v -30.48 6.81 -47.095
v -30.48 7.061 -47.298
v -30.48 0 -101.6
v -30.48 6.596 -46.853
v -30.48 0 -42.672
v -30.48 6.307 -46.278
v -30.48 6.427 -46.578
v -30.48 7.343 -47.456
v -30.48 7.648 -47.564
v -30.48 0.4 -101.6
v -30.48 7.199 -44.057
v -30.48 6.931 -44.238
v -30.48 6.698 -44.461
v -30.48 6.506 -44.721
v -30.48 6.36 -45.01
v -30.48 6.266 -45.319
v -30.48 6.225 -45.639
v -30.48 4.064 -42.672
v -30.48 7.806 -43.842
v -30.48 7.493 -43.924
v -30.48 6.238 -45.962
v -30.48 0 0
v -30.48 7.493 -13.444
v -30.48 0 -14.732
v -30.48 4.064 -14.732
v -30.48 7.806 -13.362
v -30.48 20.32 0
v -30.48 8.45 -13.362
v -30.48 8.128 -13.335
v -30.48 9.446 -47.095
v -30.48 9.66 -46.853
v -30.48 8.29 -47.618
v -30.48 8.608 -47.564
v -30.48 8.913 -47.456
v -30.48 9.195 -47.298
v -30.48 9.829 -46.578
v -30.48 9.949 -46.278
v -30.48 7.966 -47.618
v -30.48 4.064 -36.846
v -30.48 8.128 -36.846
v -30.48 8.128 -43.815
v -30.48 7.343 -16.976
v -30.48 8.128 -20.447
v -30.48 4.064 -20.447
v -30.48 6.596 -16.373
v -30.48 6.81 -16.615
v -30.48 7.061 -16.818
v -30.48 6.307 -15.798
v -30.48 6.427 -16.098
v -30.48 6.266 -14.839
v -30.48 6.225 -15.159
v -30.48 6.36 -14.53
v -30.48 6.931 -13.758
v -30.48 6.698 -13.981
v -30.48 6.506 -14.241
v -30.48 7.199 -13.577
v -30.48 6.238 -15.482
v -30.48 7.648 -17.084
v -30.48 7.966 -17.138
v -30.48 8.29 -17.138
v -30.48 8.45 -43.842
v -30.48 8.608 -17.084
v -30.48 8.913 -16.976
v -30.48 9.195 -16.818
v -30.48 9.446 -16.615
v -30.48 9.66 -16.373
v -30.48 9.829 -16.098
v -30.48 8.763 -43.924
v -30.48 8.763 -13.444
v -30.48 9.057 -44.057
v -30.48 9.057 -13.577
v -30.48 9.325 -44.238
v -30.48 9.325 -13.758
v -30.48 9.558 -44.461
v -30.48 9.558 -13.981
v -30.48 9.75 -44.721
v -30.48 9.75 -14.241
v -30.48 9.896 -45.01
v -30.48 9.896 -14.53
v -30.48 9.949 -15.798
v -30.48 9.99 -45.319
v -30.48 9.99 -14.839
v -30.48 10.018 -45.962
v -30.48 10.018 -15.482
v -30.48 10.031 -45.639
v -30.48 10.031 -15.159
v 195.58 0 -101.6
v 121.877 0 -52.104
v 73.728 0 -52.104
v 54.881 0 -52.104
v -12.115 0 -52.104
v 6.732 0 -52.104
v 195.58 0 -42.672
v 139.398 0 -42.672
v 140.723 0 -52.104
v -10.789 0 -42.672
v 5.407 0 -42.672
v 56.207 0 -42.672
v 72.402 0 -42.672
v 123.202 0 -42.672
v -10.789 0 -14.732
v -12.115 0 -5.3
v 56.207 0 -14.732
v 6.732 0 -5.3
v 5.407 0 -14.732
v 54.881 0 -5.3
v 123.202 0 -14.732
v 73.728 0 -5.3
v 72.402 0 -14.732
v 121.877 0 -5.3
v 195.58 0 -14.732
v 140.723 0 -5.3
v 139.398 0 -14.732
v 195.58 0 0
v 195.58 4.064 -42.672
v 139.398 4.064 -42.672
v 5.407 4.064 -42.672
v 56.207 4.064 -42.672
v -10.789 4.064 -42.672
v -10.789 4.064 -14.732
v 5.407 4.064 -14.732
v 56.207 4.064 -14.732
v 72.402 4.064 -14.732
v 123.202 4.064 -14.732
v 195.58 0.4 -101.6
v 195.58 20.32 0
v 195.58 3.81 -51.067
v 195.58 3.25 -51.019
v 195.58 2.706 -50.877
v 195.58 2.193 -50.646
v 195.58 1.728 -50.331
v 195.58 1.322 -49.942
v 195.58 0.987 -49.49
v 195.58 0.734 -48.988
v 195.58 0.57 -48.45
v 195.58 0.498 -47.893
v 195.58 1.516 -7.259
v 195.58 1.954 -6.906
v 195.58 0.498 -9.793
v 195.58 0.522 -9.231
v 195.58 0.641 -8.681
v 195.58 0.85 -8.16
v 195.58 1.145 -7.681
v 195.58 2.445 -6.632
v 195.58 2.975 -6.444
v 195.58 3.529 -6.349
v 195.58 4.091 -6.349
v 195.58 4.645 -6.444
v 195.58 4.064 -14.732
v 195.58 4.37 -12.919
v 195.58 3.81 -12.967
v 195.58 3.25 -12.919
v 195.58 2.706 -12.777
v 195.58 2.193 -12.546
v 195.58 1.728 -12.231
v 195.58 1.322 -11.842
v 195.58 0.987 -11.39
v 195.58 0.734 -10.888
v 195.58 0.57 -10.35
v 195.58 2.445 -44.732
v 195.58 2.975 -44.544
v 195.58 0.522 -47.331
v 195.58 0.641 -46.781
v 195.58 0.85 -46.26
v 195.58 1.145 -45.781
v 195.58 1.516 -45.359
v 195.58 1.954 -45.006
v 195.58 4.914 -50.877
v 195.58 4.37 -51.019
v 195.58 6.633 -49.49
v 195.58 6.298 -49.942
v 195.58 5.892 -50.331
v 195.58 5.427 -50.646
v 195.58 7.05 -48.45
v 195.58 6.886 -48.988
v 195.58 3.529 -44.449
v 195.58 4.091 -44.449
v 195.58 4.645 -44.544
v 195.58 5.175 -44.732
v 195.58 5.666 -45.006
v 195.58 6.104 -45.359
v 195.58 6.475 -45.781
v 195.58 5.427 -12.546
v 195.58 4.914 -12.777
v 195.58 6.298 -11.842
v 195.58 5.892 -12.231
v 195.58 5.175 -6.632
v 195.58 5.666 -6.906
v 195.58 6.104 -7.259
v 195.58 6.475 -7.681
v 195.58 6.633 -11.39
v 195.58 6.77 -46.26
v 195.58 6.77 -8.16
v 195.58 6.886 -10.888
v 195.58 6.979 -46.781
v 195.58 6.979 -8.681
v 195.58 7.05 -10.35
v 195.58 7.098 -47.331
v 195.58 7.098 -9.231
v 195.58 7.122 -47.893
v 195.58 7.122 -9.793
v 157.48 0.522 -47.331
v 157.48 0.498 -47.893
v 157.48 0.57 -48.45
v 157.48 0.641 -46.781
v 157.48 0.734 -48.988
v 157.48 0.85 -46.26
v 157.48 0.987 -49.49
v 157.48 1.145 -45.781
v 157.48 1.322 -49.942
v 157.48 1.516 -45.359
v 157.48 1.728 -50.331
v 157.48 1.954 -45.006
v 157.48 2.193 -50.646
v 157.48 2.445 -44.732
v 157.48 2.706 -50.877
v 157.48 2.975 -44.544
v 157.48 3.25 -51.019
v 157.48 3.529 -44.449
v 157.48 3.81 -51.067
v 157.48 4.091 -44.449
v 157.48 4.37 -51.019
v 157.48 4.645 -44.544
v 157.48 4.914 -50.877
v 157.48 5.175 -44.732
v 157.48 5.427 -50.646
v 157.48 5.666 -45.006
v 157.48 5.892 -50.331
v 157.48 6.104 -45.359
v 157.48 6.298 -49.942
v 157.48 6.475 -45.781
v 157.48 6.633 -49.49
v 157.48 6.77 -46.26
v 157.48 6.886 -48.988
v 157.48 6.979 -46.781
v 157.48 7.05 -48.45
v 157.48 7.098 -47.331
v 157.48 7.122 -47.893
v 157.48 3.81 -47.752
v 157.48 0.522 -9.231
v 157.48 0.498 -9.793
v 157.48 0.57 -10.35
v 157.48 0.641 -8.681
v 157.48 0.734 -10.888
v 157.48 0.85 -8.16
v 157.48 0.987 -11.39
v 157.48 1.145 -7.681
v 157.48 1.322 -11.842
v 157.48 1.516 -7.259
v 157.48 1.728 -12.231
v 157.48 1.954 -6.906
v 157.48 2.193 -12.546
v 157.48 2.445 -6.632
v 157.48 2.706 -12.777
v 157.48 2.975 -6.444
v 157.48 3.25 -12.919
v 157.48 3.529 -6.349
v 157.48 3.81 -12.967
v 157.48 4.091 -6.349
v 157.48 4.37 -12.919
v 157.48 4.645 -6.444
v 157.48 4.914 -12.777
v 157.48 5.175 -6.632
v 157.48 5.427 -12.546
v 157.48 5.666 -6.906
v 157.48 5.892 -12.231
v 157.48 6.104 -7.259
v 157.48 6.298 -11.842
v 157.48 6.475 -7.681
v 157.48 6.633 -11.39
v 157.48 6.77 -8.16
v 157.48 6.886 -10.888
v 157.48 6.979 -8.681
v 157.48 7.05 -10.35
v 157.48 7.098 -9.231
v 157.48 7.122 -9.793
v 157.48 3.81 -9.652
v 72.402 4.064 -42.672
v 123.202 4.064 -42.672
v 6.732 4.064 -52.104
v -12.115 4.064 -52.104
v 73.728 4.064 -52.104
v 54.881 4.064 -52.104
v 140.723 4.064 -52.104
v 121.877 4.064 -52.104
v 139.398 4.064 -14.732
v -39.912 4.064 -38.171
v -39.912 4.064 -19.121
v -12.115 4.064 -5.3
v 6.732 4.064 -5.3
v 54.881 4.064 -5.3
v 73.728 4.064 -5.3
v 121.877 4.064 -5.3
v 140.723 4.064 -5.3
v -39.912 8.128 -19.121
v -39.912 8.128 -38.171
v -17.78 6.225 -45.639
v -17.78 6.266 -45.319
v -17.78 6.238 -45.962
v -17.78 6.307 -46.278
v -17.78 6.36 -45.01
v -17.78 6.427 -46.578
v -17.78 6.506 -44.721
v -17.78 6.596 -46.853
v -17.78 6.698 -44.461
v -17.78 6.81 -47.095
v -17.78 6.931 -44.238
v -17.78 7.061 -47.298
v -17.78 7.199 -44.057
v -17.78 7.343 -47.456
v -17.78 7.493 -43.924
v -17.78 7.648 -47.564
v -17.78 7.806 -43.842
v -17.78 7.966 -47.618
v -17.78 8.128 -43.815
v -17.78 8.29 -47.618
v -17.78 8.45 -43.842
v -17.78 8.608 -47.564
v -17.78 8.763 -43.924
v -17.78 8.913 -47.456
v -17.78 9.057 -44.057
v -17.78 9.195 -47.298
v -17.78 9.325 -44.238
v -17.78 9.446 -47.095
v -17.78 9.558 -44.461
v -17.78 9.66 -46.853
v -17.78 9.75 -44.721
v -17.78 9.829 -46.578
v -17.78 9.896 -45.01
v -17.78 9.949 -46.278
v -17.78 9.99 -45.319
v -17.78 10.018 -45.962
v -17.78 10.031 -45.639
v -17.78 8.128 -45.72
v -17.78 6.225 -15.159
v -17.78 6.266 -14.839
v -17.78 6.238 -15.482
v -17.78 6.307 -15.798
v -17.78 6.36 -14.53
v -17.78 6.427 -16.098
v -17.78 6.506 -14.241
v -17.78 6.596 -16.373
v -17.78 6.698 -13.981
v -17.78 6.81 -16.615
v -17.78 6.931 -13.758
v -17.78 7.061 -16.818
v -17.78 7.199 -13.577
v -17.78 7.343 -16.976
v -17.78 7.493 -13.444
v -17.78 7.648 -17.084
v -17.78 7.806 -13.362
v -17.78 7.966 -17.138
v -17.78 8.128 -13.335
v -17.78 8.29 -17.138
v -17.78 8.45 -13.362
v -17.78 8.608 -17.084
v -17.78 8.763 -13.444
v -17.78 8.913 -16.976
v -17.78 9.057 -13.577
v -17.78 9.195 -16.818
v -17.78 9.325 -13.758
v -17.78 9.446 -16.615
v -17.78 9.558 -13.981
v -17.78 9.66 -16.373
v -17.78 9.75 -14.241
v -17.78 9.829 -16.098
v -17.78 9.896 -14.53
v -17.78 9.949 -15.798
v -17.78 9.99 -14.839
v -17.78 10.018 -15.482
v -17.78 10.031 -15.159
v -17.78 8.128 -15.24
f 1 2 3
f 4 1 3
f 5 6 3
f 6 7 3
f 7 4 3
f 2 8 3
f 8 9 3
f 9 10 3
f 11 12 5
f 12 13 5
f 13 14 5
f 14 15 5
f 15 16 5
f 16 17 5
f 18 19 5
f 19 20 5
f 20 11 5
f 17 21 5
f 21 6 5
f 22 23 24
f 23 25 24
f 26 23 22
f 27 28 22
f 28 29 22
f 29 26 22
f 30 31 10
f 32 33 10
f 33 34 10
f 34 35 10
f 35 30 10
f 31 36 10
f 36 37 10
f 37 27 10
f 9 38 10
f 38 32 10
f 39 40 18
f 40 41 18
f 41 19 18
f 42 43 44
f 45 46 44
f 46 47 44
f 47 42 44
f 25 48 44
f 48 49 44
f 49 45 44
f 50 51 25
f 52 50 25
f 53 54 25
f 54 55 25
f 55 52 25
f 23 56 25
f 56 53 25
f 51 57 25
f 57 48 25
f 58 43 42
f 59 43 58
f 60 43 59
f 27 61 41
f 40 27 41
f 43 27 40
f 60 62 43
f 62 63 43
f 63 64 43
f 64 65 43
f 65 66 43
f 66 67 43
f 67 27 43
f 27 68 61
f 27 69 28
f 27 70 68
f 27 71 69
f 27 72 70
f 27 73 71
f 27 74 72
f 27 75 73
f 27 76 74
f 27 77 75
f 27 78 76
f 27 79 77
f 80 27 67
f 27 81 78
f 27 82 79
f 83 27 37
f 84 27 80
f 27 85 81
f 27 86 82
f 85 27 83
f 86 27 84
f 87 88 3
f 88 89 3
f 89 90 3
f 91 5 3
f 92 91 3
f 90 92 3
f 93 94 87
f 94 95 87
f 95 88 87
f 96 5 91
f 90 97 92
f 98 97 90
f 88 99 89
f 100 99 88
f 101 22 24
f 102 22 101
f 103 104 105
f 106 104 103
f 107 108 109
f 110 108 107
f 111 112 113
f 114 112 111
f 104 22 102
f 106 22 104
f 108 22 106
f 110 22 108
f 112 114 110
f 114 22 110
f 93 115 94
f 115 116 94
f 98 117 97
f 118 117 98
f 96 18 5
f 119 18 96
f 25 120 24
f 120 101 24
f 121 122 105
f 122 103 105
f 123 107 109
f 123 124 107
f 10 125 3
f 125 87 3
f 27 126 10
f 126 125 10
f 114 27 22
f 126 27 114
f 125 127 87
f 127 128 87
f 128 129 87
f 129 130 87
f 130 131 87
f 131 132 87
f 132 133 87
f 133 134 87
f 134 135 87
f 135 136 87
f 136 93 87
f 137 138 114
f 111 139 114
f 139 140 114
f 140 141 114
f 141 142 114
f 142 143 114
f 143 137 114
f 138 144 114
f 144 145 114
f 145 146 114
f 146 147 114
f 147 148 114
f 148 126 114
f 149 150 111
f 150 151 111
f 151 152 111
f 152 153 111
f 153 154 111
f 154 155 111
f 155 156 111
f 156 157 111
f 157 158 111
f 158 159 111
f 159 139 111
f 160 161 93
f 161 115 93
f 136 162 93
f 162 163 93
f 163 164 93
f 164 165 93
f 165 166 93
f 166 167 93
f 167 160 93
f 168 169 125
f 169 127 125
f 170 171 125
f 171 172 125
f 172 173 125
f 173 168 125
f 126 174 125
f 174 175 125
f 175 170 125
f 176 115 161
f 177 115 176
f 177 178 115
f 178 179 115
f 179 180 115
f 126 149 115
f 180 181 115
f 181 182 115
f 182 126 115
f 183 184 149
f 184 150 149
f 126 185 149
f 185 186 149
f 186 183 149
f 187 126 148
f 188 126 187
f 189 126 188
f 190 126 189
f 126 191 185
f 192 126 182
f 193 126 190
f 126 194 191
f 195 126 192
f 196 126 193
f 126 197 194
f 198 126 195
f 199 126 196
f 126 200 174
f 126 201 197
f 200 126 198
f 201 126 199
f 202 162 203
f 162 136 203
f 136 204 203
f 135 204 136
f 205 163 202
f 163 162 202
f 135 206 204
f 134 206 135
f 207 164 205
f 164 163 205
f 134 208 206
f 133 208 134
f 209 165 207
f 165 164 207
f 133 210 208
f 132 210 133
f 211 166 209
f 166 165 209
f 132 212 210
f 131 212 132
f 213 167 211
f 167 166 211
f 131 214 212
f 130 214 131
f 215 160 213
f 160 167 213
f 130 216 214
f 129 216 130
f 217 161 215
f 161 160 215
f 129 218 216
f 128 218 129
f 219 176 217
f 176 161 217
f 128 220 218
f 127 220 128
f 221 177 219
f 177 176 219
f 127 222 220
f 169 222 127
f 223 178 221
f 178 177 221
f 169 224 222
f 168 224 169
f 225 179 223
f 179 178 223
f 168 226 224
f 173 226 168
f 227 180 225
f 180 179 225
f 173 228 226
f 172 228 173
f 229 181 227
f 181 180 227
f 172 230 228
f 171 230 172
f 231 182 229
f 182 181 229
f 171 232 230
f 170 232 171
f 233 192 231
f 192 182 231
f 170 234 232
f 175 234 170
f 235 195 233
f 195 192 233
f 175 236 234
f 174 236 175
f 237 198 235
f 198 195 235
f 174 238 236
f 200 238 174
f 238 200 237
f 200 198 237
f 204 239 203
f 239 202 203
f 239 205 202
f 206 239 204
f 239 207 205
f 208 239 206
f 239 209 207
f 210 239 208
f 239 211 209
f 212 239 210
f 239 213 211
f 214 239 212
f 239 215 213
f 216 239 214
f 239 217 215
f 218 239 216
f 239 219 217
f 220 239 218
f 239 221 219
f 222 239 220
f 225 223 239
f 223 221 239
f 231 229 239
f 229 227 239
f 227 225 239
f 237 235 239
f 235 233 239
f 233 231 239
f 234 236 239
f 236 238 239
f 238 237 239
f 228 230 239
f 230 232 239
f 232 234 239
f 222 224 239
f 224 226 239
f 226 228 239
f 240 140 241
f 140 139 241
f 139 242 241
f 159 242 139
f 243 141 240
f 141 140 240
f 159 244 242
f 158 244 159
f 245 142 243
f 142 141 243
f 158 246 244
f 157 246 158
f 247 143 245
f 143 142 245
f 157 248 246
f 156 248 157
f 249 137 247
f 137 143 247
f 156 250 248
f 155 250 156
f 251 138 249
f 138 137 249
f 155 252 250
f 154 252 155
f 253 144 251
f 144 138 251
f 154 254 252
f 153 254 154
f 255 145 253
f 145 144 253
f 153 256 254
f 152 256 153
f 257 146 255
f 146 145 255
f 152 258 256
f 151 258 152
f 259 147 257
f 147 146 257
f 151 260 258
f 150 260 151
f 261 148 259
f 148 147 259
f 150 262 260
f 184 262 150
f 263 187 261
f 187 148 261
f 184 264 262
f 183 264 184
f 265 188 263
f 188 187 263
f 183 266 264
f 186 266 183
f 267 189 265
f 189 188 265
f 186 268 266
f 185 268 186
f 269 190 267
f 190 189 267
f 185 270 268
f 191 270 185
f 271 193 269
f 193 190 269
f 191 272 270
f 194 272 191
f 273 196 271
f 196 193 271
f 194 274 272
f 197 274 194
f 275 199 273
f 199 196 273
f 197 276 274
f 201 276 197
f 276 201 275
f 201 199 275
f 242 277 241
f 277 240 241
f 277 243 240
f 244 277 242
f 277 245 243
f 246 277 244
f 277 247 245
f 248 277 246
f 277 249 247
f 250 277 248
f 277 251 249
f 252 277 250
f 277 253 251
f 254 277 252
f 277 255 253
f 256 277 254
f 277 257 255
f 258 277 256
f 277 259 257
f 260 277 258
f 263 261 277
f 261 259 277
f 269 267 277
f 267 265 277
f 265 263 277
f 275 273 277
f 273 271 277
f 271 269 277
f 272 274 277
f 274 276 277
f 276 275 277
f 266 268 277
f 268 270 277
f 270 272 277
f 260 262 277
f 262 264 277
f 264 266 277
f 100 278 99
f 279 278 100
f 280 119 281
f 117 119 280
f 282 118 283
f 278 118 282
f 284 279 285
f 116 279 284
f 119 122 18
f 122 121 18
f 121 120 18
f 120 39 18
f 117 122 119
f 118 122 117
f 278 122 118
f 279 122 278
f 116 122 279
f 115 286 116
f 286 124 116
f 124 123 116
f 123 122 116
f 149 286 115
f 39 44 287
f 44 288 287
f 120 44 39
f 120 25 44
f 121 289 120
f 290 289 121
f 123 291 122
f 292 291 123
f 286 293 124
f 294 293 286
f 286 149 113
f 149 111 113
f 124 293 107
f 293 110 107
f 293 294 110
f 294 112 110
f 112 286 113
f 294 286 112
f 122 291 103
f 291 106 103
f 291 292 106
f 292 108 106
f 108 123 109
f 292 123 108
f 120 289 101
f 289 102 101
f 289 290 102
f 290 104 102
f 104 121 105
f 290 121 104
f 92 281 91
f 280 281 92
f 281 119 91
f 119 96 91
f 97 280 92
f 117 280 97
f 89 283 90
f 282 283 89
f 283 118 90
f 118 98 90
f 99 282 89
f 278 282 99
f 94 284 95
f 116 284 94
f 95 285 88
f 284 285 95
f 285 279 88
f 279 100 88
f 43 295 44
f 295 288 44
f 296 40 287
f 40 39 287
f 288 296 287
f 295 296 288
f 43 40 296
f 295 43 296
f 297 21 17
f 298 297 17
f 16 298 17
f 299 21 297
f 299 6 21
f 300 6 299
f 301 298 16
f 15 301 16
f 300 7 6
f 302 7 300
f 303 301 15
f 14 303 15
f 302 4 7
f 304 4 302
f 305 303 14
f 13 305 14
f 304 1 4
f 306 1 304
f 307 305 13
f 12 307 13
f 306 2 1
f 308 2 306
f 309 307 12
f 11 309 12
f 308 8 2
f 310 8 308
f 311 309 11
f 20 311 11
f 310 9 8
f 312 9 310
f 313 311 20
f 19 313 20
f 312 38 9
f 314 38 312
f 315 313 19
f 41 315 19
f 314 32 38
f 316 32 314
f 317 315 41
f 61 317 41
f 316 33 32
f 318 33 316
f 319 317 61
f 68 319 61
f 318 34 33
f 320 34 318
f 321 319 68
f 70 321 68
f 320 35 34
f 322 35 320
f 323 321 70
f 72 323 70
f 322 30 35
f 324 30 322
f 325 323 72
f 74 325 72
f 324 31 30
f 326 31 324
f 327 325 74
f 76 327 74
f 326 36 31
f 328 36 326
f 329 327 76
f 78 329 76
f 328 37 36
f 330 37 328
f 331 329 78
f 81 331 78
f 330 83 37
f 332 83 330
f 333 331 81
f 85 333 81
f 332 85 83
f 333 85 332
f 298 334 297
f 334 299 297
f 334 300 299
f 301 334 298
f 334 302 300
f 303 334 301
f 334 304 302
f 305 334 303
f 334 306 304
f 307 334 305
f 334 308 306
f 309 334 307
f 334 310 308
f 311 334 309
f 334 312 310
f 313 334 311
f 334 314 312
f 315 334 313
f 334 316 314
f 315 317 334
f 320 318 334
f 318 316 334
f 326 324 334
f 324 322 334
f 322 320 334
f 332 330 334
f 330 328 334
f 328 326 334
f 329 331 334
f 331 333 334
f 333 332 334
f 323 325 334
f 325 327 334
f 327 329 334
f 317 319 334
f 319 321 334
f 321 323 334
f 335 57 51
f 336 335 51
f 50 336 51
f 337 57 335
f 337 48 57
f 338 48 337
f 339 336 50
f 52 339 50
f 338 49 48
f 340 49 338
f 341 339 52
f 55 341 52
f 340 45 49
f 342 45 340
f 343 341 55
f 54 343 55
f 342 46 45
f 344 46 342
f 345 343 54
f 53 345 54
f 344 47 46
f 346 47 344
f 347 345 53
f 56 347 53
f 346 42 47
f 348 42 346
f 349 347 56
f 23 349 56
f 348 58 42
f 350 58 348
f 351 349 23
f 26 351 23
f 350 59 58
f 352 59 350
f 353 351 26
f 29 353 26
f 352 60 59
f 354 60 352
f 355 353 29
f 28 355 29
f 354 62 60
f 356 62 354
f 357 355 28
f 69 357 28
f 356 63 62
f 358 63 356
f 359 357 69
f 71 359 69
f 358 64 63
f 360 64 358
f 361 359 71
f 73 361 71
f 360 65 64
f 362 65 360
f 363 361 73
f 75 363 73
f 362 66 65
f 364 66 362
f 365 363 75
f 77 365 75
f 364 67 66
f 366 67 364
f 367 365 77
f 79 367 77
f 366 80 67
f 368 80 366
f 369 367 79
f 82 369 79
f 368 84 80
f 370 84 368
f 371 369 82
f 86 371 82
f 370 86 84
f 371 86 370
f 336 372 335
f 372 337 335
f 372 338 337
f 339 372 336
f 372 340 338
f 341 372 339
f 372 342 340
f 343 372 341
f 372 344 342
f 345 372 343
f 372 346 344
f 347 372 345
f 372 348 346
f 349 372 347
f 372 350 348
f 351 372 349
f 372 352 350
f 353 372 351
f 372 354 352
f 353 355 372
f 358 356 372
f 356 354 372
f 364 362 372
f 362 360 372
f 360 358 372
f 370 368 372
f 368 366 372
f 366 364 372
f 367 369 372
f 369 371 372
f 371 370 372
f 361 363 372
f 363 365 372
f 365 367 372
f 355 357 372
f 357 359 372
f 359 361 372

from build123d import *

# Parameters (mm, degrees)
BOSS_EXTRUDE1_DEPTH = 195.58
SKETCH2_R           = 3.3147
CUT_EXTRUDE1_DEPTH  = 38.1
SKETCH3_W           = 27.94
SKETCH3_H           = 4.064
CUT_EXTRUDE2_DEPTH  = 405.649982083
CUT_EXTRUDE3_DEPTH  = 4.064
SKETCH5_W           = 101.6
SKETCH5_H           = 20.32
CUT_EXTRUDE4_DEPTH  = 165.1
BOSS_EXTRUDE2_DEPTH = 4.064
SKETCH7_R           = 1.905
CUT_EXTRUDE5_DEPTH  = 12.7


with BuildPart() as part:
    # Sketch1 → Boss-Extrude1 (new, symmetric)
    with BuildSketch(Plane(origin=(0, 0, 0), x_dir=(0, 0, -1), z_dir=(1, 0, 0))):
        Polygon((0, 0), (0, 20.32), (101.6, 0.4), (101.6, 0), align=None)
    extrude(amount=BOSS_EXTRUDE1_DEPTH, both=True)

    # Sketch2 → Cut-Extrude1 (cut)
    with BuildSketch(Plane(origin=(195.58, 0, 0), x_dir=(0, 0, -1), z_dir=(1, 0, 0))):
        with Locations((9.652, 3.81)):
            Circle(SKETCH2_R)
        with Locations((47.752, 3.81)):
            Circle(SKETCH2_R)
    cut_extrude1 = extrude(amount=-CUT_EXTRUDE1_DEPTH, mode=Mode.SUBTRACT)

    # Mirror3: Cut-Extrude1 across plane
    add(cut_extrude1.mirror(Plane(origin=(0, 0, 0), x_dir=(0, 0, 1), z_dir=(1, 0, 0))), mode=Mode.SUBTRACT)

    # Sketch3 → Cut-Extrude2 (cut, through all)
    with BuildSketch(Plane.ZY.offset(195.58)):
        with Locations((-28.702, 2.032)):
            Rectangle(SKETCH3_W, SKETCH3_H)
    extrude(amount=-CUT_EXTRUDE2_DEPTH, mode=Mode.SUBTRACT)

    # Sketch4 → Cut-Extrude3 (cut)
    with BuildSketch(Plane.XZ):
        Polygon((5.40665728, -42.672), (-10.788895147, -42.672), (-12.114518933, -52.104303355), (6.732281067, -52.104303355), align=None)
        Polygon((139.397762134, -42.672), (123.202209707, -42.672), (121.87658592, -52.104303355), (140.72338592, -52.104303355), align=None)
        Polygon((121.87658592, -5.299696645), (123.202209707, -14.732), (139.397762134, -14.732), (140.72338592, -5.299696645), align=None)
        Polygon((-12.114518933, -5.299696645), (-10.788895147, -14.732), (5.40665728, -14.732), (6.732281067, -5.299696645), align=None)
        Polygon((72.402209707, -42.672), (56.20665728, -42.672), (54.881033493, -52.104303355), (73.727833493, -52.104303355), align=None)
        Polygon((54.881033493, -5.299696645), (56.20665728, -14.732), (72.402209707, -14.732), (73.727833493, -5.299696645), align=None)
    extrude(amount=-CUT_EXTRUDE3_DEPTH, mode=Mode.SUBTRACT)

    # Sketch5 → Cut-Extrude4 (cut)
    with BuildSketch(Plane.ZY.offset(195.58)):
        with Locations((-50.8, 10.16)):
            Rectangle(SKETCH5_W, SKETCH5_H)
    extrude(amount=-CUT_EXTRUDE4_DEPTH, mode=Mode.SUBTRACT)

    # Sketch6 → Boss-Extrude2 (add)
    with BuildSketch(Plane.XZ.offset(-4.064)):
        Polygon((-30.48, -20.447), (-30.48, -36.845752427), (-39.912303355, -38.171376213), (-39.912303355, -19.121376213), align=None)
    extrude(amount=-BOSS_EXTRUDE2_DEPTH)

    # Sketch7 → Cut-Extrude5 (cut)
    with BuildSketch(Plane.ZY.offset(30.48)):
        with Locations((-15.24, 8.128)):
            Circle(SKETCH7_R)
        with Locations((-45.72, 8.128)):
            Circle(SKETCH7_R)
    extrude(amount=-CUT_EXTRUDE5_DEPTH, mode=Mode.SUBTRACT)


solid = part.part
